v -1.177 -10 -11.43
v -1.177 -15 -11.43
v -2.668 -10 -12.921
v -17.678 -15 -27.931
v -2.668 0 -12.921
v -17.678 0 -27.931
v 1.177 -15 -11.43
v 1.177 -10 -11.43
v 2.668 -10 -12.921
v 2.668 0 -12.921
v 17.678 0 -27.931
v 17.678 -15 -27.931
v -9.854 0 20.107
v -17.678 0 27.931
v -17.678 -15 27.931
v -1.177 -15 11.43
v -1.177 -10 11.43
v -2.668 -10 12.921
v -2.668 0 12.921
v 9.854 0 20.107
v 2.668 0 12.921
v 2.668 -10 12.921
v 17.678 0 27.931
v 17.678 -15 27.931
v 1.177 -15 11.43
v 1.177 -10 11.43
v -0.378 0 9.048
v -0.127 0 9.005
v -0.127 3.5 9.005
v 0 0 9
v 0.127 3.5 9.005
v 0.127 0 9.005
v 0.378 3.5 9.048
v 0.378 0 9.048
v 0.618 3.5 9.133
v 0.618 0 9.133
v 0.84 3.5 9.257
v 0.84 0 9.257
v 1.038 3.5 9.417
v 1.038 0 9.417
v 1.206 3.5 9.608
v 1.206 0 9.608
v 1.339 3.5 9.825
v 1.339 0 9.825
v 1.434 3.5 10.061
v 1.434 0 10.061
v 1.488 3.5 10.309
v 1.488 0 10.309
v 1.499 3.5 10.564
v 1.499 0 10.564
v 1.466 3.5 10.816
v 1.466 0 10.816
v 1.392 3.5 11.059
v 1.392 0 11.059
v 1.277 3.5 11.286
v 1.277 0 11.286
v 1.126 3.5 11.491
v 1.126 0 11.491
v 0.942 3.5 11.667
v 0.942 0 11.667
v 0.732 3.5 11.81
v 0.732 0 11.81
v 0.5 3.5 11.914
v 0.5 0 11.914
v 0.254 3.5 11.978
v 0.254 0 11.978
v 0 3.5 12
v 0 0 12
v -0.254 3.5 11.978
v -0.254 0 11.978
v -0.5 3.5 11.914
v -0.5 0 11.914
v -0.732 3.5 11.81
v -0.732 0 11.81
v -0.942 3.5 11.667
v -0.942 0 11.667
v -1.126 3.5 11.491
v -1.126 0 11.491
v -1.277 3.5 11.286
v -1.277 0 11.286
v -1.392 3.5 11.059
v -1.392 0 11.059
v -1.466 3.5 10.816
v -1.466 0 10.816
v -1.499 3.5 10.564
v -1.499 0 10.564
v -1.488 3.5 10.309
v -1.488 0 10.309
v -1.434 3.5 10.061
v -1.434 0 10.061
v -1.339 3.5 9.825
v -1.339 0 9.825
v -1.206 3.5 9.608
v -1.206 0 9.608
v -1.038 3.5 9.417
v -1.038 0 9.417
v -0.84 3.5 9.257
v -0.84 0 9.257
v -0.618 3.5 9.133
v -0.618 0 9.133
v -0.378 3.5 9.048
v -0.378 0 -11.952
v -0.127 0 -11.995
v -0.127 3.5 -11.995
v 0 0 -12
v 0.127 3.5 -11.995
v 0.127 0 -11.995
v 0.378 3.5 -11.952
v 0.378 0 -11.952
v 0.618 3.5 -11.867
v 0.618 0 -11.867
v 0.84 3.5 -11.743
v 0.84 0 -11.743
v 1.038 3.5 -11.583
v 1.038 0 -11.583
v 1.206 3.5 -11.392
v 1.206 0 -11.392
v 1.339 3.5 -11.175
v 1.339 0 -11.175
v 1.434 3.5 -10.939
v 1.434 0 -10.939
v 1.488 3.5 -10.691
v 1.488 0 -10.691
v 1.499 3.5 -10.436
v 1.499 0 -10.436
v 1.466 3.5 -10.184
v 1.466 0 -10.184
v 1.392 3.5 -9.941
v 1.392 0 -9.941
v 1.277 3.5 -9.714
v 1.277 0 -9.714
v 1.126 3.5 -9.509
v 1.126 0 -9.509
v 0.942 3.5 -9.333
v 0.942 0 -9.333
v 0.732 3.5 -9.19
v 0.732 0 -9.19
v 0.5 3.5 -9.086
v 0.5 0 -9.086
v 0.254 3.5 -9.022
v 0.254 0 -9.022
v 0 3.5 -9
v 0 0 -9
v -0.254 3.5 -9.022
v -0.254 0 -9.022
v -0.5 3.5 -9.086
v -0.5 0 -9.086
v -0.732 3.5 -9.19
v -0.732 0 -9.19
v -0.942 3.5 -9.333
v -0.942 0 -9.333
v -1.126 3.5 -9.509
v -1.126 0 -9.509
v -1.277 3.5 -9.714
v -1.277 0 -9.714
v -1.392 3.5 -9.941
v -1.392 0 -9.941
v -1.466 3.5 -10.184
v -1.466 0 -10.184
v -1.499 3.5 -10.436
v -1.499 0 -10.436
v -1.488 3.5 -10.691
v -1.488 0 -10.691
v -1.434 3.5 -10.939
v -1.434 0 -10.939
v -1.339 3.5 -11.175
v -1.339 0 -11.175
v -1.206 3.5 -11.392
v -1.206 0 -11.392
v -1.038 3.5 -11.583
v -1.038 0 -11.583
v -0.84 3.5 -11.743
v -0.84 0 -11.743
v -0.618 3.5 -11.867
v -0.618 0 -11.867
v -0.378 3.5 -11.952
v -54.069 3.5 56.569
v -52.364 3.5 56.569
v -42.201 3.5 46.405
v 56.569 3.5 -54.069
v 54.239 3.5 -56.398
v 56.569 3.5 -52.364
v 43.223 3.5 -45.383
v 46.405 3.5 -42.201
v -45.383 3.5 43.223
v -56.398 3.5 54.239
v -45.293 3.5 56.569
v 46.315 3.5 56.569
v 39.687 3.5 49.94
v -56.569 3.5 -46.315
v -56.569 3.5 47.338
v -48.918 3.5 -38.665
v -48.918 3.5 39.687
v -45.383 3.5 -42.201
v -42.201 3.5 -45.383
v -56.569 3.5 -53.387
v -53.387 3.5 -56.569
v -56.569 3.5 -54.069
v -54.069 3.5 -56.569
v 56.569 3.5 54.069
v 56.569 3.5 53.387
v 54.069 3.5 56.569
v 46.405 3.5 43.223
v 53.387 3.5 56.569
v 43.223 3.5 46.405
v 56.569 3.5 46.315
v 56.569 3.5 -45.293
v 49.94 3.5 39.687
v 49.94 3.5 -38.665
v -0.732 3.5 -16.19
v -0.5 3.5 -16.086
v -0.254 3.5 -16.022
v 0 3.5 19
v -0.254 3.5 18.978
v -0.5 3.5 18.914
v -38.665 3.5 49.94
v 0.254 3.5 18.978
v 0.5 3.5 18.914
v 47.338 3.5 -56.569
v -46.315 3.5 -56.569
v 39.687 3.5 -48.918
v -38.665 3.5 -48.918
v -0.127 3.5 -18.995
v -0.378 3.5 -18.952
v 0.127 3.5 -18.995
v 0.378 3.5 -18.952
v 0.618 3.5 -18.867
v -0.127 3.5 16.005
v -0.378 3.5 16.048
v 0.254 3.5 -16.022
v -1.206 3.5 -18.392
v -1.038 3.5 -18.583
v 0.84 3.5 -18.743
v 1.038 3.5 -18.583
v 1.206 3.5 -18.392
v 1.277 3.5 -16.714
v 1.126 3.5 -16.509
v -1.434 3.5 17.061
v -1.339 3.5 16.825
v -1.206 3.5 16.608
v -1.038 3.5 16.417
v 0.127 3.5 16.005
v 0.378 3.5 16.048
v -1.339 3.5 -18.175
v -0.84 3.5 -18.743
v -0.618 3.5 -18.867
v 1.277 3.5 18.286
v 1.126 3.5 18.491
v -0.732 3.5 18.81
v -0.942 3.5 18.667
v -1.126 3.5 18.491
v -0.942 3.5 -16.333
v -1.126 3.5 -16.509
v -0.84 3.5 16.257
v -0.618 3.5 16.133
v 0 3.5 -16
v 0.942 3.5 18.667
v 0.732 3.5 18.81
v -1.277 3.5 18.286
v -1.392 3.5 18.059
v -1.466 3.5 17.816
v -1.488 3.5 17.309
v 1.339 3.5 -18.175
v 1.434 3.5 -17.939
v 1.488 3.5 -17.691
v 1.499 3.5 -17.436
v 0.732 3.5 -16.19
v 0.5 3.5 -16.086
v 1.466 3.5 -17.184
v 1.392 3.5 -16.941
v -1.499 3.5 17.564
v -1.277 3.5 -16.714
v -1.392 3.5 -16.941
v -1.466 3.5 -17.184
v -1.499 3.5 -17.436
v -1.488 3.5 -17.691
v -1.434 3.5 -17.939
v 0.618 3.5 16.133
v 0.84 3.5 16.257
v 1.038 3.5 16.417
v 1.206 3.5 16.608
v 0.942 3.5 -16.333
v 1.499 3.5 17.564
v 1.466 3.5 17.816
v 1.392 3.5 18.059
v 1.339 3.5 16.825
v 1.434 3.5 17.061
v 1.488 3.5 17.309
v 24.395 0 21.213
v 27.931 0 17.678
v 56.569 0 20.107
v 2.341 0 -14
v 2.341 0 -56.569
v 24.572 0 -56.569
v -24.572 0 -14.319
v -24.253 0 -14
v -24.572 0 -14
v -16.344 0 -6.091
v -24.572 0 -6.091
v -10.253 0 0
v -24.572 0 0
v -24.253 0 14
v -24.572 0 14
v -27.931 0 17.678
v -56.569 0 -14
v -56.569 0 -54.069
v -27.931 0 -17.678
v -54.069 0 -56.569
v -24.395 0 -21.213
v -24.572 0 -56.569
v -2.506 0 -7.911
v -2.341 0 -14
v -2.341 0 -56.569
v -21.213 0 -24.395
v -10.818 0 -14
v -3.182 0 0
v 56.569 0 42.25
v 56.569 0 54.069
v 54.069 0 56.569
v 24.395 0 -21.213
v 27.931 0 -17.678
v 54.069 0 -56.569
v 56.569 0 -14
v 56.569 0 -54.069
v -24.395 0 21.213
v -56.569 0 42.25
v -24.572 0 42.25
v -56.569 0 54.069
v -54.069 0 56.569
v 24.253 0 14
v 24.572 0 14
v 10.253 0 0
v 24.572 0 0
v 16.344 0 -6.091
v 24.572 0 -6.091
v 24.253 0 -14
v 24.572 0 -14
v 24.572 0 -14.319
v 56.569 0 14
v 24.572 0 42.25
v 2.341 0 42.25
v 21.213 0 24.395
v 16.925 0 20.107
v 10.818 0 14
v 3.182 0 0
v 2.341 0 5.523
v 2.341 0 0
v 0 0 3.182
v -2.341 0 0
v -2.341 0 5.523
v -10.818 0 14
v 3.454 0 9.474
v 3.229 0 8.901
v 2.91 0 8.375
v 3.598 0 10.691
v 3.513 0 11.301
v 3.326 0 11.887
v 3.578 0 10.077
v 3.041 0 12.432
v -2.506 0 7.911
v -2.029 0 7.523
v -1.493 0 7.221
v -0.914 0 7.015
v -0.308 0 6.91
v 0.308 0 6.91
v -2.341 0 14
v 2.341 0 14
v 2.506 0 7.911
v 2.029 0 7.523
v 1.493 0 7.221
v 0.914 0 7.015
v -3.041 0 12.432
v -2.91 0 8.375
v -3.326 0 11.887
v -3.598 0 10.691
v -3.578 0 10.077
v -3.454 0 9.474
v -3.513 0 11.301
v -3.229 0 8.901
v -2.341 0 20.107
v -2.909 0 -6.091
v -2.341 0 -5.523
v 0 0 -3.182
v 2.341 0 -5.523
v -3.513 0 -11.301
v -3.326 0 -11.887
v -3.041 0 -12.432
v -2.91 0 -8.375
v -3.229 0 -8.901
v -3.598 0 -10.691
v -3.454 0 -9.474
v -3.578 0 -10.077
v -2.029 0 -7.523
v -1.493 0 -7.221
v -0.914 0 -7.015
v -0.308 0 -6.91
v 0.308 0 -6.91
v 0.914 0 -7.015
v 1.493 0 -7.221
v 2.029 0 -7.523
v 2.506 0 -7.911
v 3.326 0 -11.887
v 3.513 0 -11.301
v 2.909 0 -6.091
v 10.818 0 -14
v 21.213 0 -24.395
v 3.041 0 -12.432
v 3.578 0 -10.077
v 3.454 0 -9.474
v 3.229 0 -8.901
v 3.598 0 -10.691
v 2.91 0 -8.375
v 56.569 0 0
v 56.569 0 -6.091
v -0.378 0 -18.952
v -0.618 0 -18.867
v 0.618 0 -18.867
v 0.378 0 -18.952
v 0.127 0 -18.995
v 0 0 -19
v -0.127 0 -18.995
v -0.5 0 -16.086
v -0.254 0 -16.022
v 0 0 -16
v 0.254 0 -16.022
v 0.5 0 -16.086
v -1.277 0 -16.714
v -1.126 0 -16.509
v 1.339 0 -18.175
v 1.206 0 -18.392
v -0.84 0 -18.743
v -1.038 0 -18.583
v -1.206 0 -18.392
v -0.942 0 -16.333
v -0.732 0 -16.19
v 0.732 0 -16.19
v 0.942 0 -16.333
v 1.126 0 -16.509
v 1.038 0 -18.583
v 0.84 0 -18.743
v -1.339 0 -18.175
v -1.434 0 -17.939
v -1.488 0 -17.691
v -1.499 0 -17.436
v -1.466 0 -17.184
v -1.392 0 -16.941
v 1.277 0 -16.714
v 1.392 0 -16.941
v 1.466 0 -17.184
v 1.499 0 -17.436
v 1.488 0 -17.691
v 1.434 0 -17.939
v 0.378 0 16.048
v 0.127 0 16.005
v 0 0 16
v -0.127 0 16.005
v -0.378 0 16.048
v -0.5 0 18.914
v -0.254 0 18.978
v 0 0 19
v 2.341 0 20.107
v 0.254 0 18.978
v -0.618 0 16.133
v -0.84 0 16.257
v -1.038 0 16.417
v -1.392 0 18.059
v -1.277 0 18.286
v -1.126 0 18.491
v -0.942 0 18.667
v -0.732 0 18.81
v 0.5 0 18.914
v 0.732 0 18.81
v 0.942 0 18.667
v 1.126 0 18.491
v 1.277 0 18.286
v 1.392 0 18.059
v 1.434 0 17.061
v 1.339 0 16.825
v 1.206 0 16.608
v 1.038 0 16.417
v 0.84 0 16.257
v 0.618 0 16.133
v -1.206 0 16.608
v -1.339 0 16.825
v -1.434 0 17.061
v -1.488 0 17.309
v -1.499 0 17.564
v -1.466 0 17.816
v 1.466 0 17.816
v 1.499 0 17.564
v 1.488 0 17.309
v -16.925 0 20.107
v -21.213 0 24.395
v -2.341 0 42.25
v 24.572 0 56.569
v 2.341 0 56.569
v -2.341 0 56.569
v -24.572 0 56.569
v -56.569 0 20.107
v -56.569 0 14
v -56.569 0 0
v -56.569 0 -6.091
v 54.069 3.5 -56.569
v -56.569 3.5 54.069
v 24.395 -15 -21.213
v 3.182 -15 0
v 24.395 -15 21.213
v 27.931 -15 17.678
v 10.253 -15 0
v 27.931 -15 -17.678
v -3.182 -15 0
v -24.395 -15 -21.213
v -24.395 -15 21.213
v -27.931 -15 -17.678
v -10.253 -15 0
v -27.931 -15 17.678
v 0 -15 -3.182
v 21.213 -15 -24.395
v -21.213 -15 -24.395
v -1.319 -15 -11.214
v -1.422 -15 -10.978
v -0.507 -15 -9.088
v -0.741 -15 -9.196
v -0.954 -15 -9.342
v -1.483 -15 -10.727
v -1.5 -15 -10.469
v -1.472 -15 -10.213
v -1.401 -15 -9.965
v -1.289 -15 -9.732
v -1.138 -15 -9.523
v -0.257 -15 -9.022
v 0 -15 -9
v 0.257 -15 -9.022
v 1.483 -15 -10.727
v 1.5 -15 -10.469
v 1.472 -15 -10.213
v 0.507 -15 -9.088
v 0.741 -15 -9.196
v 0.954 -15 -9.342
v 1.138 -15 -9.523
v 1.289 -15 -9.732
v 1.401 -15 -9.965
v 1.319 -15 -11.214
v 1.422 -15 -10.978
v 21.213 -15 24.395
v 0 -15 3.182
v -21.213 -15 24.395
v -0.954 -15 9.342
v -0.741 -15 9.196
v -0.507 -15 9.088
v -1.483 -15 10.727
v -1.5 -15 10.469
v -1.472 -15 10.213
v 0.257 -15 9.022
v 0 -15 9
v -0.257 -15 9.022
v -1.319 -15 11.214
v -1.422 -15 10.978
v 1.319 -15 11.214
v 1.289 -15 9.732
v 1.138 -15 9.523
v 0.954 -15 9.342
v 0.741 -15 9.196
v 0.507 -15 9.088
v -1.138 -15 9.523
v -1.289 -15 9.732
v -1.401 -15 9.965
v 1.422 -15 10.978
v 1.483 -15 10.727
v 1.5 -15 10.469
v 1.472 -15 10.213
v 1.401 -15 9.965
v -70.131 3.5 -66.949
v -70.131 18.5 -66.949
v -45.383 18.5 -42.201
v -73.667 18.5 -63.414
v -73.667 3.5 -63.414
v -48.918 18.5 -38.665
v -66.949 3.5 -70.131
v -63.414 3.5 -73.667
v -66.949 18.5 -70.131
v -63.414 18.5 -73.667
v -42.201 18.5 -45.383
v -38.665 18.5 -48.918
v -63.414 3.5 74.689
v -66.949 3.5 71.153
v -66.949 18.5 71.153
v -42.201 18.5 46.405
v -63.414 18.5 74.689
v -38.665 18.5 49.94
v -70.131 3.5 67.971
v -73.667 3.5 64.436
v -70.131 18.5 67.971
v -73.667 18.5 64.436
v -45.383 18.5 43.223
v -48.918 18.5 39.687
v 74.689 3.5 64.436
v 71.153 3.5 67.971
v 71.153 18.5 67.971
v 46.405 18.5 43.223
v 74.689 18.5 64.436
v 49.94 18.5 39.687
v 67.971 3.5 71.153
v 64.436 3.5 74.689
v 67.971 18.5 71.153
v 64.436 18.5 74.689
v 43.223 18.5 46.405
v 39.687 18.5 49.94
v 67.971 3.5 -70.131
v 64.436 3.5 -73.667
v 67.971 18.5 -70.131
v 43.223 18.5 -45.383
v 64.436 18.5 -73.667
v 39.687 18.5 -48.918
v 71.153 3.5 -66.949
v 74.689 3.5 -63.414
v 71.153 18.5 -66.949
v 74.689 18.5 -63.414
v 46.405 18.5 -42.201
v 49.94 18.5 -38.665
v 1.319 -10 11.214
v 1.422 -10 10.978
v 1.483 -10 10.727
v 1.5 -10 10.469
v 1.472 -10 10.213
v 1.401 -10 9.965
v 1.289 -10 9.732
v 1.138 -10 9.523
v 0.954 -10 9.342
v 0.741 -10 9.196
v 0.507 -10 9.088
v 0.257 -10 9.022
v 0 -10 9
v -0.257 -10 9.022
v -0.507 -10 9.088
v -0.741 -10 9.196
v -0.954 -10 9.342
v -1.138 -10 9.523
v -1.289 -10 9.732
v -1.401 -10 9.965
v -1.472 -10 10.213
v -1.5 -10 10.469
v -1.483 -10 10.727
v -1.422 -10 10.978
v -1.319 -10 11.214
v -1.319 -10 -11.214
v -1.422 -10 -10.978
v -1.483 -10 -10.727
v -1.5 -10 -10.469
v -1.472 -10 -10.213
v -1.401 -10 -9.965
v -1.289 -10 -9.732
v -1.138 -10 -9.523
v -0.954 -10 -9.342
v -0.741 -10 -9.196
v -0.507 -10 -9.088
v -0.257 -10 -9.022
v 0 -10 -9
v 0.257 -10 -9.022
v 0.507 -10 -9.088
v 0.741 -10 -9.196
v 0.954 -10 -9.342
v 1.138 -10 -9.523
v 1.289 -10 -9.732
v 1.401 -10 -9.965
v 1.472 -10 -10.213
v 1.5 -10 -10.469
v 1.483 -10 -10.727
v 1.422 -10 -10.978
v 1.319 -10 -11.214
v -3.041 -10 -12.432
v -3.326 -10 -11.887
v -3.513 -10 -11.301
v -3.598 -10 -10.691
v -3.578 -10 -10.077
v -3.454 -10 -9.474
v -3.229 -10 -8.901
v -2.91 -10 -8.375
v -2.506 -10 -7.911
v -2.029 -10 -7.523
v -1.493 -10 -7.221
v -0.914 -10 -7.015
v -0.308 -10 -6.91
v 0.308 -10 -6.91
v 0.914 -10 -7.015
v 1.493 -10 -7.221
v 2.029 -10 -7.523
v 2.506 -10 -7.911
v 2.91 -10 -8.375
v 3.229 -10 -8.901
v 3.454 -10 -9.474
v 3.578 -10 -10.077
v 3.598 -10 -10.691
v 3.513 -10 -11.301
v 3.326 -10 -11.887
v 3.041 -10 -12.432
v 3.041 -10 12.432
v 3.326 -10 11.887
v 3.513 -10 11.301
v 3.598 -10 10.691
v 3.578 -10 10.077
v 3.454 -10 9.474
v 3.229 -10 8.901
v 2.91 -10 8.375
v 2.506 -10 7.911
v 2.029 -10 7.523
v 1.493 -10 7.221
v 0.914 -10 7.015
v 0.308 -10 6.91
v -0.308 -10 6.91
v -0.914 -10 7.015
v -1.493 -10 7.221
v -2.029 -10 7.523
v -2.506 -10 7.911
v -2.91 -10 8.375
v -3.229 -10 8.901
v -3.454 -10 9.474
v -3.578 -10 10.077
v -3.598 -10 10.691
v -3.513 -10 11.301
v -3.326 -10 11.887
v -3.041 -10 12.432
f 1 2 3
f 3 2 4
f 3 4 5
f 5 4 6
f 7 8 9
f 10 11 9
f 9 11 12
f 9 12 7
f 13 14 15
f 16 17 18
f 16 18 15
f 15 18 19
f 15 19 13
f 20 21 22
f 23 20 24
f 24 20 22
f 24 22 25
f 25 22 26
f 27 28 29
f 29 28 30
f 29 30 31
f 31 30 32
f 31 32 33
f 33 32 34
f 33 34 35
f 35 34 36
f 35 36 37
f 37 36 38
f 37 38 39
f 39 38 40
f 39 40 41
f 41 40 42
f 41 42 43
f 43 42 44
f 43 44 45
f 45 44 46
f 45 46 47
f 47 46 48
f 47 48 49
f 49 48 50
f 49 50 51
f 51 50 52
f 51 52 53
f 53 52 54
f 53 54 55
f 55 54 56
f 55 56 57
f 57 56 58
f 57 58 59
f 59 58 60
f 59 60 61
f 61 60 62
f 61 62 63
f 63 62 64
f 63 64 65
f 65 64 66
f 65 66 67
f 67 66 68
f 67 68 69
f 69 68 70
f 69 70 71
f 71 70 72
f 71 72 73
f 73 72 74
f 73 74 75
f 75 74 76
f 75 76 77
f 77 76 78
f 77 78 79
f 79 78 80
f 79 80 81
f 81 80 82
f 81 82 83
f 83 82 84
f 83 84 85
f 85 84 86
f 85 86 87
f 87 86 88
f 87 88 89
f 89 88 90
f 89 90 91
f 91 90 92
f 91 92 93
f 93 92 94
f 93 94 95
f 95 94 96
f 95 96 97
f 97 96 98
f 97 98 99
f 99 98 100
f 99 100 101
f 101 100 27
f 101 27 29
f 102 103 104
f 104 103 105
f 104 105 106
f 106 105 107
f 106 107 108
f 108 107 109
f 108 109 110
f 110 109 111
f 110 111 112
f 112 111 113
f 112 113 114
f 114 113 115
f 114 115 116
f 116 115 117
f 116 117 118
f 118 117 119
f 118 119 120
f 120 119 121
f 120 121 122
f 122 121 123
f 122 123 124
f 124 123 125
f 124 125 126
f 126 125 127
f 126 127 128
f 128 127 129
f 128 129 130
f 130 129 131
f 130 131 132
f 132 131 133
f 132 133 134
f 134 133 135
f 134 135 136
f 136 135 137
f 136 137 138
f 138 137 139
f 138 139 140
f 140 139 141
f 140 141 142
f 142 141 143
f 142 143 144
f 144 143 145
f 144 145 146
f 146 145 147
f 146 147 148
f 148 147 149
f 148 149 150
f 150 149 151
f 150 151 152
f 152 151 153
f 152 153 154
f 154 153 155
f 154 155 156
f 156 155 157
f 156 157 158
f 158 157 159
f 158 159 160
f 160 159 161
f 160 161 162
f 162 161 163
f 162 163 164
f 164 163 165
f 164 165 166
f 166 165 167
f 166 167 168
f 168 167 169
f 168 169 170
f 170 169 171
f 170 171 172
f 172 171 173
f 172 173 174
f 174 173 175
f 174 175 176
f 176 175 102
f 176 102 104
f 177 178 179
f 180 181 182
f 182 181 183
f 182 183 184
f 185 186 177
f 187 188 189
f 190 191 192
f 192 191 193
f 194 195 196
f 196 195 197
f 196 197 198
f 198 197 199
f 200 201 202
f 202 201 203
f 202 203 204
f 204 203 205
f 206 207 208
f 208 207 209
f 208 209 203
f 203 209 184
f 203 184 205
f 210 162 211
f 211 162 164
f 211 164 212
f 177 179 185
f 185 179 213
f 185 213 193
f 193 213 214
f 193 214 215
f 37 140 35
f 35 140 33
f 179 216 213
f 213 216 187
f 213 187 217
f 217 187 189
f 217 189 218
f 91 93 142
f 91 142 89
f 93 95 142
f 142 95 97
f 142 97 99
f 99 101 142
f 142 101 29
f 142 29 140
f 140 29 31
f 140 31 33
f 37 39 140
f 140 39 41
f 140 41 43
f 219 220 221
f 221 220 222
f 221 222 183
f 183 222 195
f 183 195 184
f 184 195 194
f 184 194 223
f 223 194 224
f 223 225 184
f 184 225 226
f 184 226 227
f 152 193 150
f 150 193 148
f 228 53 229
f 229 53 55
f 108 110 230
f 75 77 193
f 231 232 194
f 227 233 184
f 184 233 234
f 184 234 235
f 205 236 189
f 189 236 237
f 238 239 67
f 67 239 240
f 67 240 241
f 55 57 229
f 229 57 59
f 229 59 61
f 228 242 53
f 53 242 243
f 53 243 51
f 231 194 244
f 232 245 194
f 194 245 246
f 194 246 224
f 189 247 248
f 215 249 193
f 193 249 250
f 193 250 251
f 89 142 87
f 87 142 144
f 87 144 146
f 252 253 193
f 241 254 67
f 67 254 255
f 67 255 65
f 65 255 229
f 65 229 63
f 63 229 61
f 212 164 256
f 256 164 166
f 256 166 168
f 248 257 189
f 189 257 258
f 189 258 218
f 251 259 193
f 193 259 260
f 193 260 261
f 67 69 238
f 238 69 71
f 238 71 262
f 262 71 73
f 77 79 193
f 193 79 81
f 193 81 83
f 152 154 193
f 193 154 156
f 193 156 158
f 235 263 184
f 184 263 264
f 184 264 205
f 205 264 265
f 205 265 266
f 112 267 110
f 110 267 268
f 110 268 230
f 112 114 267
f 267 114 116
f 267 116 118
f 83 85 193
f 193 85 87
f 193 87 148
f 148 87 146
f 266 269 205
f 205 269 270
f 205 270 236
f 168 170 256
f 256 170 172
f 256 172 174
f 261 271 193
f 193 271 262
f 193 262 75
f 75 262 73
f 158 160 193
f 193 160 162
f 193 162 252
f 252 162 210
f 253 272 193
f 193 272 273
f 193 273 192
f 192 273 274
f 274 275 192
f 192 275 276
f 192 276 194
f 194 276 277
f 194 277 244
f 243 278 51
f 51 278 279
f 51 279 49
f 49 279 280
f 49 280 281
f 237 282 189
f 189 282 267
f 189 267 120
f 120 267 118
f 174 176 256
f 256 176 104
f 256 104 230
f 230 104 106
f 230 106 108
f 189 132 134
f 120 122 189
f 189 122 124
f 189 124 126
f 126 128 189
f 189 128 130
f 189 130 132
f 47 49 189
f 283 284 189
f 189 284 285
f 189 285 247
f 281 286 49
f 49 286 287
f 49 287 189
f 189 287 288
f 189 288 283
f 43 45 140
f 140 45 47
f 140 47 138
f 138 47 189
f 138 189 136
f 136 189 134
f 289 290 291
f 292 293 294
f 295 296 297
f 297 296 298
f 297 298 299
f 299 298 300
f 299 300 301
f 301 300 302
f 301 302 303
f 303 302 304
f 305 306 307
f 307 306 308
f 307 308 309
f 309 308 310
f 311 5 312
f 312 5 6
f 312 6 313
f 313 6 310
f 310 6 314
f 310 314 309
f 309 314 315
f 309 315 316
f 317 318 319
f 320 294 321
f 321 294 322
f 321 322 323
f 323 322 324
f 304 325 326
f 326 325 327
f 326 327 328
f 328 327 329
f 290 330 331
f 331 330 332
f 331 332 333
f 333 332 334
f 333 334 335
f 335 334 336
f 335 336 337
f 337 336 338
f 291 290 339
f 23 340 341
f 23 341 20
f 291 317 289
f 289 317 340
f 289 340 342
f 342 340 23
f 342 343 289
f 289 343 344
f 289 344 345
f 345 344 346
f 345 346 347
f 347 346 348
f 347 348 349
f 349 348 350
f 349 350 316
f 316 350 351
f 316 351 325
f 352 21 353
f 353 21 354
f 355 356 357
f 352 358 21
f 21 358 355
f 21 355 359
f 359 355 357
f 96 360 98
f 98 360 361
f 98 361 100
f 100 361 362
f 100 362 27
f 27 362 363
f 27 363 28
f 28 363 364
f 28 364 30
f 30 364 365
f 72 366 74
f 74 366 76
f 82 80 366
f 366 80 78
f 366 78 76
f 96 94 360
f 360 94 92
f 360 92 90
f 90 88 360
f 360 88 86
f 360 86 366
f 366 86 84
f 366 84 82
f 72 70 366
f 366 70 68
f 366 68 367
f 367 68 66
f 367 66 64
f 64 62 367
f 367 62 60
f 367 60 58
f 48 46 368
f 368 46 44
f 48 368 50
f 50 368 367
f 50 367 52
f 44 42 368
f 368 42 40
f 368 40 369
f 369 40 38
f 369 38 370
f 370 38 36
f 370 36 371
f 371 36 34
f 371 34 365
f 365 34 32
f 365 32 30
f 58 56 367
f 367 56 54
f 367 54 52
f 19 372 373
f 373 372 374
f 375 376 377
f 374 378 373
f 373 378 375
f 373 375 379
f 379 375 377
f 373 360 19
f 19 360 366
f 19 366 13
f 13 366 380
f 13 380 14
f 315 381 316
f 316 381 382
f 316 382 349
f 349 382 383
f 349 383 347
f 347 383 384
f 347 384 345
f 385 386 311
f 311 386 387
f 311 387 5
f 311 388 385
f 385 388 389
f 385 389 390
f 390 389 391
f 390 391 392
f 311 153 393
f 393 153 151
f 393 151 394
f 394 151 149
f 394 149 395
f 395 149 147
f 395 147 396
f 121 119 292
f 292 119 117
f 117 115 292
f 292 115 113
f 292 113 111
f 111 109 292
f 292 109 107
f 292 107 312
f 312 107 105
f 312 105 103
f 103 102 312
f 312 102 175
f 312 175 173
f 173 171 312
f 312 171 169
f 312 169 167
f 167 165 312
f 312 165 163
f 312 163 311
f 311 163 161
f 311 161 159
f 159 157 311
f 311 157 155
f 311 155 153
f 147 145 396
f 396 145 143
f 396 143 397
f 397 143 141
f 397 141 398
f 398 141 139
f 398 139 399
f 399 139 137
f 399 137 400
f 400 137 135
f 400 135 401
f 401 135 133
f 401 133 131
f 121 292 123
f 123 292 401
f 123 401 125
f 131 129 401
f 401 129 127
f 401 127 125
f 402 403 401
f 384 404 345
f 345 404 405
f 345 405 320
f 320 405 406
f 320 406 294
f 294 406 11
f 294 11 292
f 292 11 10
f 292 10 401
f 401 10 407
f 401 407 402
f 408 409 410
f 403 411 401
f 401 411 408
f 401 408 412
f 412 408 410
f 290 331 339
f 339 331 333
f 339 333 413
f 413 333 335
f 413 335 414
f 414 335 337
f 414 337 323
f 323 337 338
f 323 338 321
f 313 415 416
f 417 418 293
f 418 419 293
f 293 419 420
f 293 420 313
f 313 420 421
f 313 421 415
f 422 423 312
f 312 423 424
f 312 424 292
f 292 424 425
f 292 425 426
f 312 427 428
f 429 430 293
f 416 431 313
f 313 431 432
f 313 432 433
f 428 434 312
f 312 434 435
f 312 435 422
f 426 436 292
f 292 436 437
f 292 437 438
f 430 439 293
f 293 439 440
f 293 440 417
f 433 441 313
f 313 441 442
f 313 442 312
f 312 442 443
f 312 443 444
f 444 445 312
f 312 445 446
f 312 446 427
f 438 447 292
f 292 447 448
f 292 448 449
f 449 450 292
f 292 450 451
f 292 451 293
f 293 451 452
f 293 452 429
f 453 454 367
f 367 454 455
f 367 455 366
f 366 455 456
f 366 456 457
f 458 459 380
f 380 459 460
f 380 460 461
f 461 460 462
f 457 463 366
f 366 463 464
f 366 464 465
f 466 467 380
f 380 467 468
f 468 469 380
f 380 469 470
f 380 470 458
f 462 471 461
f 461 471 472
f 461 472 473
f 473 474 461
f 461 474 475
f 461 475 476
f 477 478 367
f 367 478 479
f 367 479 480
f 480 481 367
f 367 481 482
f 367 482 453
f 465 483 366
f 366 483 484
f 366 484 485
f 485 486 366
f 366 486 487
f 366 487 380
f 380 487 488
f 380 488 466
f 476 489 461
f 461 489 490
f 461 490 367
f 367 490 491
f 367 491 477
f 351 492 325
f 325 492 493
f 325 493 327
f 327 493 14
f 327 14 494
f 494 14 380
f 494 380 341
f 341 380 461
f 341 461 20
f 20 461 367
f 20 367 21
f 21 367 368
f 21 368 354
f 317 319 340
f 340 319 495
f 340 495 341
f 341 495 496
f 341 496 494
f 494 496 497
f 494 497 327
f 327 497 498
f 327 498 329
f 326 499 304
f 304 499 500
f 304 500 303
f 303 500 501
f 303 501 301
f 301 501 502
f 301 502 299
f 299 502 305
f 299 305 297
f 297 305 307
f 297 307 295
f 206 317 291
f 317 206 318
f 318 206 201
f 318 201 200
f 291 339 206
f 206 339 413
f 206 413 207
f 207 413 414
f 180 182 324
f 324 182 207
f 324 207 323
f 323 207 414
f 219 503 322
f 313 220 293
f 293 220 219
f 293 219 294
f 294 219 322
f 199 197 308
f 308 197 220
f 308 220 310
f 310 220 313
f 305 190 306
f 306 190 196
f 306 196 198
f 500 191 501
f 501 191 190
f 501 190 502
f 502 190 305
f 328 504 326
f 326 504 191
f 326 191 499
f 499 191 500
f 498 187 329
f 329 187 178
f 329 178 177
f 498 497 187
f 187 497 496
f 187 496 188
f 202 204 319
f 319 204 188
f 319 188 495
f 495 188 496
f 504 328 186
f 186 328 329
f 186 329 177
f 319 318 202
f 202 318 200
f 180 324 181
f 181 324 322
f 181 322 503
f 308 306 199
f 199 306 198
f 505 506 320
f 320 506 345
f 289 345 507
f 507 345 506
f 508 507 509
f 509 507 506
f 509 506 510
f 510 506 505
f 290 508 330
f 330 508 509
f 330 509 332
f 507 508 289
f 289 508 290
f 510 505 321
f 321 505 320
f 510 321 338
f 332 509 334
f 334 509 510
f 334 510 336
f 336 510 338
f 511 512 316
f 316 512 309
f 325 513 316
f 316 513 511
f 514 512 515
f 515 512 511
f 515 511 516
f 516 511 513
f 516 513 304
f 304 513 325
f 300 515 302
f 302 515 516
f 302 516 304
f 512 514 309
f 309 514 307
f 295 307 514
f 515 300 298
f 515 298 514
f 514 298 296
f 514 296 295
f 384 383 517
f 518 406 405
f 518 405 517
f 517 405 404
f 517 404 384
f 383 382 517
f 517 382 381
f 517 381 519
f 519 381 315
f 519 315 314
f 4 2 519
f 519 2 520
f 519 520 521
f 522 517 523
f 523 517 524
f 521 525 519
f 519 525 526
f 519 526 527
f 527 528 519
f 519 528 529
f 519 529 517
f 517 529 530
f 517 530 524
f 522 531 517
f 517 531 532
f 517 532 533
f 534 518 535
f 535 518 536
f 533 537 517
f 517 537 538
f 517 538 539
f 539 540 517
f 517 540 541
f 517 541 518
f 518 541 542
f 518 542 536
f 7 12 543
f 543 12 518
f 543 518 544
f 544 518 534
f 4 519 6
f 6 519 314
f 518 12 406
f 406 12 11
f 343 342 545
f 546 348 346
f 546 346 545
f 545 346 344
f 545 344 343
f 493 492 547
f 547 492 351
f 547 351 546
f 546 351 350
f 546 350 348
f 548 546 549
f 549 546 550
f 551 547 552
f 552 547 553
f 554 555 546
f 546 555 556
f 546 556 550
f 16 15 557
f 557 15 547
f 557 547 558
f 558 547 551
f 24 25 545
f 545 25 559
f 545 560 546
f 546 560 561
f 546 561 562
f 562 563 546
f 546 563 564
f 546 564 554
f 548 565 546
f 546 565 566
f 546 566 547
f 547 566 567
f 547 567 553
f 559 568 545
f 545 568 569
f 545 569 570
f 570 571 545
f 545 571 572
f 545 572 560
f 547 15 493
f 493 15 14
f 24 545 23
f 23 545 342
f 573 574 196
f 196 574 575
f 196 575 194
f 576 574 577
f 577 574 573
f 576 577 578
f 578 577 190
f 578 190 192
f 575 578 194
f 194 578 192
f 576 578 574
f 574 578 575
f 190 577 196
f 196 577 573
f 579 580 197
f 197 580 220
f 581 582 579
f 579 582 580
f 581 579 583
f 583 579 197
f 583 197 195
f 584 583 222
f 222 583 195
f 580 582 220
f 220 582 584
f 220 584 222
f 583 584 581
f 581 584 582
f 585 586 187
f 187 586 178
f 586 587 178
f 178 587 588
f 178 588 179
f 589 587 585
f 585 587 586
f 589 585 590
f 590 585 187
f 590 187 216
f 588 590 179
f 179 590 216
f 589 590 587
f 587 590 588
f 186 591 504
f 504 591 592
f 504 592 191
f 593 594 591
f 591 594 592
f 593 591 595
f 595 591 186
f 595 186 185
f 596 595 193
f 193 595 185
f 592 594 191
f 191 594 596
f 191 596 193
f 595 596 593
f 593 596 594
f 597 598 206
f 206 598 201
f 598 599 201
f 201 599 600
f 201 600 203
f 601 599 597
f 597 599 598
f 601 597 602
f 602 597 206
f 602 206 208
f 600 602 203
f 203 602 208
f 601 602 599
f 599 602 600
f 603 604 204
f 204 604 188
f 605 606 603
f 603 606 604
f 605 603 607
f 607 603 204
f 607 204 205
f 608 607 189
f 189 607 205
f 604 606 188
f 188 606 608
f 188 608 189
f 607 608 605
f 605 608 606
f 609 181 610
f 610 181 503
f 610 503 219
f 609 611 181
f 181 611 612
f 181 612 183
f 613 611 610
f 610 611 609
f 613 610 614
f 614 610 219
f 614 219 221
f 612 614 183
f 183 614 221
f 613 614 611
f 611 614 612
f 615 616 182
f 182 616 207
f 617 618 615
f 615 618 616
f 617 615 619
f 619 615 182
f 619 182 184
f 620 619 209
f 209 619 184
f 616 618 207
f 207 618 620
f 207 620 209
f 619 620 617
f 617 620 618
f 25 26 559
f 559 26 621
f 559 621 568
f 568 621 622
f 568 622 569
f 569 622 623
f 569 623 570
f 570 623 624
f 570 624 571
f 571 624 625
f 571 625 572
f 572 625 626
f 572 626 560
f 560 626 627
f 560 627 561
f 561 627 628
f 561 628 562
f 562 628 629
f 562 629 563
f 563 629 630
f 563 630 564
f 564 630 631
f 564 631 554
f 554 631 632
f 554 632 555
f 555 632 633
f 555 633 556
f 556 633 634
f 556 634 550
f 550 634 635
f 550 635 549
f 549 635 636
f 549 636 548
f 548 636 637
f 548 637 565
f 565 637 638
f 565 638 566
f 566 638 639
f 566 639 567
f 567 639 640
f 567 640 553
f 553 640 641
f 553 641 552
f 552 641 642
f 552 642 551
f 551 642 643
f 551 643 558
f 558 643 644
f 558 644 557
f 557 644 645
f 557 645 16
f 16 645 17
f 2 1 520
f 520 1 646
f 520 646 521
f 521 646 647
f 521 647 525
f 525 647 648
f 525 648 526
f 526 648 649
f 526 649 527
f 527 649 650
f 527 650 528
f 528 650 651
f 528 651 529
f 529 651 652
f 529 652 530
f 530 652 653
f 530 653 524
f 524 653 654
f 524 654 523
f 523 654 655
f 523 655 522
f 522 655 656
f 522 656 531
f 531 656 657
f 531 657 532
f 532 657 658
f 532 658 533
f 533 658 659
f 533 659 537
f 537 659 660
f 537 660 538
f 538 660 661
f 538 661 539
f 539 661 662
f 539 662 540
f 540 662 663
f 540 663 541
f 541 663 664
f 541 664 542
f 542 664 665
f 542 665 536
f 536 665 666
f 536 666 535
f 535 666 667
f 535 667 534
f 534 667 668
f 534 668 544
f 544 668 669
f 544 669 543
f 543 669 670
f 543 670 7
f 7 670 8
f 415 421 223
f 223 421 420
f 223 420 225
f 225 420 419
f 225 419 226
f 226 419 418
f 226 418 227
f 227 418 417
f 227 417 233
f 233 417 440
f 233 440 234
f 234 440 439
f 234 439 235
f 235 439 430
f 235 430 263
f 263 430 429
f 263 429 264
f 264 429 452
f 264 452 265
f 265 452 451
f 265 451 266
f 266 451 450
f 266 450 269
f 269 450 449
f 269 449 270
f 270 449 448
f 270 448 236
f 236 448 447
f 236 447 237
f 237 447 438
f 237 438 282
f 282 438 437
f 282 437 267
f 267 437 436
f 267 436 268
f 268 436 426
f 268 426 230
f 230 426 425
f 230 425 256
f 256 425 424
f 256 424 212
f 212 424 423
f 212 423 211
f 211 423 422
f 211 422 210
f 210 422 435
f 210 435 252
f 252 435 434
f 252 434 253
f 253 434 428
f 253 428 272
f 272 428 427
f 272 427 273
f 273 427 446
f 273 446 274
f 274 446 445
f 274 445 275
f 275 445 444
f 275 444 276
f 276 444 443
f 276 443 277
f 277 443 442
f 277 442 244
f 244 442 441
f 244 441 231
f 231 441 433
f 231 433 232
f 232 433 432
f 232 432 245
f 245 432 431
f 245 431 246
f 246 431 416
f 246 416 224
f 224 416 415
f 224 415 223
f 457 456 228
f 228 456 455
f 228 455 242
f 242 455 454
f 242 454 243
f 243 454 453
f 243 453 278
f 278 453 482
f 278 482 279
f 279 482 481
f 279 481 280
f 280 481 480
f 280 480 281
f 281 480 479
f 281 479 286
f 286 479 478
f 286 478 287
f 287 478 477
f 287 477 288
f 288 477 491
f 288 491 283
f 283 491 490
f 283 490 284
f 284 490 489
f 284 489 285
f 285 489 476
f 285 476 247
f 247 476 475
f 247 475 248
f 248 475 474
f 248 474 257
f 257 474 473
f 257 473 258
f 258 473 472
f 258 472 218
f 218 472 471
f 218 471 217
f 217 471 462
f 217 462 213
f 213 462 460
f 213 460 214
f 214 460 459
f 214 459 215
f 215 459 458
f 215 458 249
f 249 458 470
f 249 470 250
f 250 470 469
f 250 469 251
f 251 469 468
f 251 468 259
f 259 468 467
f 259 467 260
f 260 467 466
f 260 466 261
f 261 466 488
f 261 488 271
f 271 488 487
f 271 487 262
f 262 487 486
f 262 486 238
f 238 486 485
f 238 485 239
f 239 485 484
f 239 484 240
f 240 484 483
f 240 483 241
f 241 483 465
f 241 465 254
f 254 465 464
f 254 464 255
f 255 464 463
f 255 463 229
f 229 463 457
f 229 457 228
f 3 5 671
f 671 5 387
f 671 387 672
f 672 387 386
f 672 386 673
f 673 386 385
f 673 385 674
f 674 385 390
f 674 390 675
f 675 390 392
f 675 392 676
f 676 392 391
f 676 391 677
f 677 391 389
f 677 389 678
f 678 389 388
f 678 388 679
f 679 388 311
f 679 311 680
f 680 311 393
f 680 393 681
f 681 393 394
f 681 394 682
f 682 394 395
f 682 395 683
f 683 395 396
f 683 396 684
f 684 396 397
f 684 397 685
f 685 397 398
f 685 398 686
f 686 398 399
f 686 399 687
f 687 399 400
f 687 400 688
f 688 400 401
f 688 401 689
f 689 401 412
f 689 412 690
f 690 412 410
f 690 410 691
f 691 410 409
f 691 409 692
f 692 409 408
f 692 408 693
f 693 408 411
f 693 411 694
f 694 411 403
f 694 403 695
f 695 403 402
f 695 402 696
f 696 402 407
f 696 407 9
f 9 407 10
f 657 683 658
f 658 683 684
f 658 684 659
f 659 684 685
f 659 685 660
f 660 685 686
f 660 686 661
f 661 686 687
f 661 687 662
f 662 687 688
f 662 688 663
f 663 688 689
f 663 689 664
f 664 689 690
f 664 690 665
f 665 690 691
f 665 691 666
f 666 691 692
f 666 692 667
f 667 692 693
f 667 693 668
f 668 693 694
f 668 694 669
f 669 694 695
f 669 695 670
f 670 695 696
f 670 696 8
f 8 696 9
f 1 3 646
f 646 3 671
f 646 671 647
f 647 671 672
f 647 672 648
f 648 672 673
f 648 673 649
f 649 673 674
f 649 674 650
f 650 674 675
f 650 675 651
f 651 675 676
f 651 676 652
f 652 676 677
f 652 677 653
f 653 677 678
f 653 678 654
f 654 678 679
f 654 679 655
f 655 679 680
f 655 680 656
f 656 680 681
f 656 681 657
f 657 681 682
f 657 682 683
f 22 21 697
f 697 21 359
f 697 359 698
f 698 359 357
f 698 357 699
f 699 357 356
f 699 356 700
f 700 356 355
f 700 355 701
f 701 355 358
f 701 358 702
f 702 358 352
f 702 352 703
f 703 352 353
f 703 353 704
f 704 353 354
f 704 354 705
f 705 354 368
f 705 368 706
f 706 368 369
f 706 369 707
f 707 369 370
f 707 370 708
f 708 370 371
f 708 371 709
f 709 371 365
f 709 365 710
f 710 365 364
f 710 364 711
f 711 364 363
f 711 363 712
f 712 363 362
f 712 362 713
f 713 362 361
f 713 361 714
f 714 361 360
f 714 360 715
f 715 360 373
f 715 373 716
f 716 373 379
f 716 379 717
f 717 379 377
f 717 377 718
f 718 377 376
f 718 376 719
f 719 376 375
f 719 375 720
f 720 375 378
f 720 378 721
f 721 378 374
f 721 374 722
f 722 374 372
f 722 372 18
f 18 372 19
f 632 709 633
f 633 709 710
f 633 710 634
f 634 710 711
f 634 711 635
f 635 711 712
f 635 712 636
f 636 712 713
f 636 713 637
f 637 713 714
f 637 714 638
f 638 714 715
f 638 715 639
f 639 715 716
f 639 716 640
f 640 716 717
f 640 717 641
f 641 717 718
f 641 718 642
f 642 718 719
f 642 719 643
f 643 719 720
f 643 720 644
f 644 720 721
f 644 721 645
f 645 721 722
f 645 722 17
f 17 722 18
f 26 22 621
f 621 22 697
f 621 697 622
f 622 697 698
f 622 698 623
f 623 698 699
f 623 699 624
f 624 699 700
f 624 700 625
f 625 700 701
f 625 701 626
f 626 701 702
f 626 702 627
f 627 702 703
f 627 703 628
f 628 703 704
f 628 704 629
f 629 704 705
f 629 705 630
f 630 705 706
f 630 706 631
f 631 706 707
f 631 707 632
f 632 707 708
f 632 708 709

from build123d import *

# Parameters (mm, degrees)
SKETCH2_W           = 113.13708499
SKETCH2_H           = 113.13708499
BOSS_EXTRUDE1_DEPTH = 3.5
CHAMFER1_SIZE       = 2.5
BOSS_EXTRUDE3_DEPTH = 15
BOSS_EXTRUDE5_DEPTH = 15
CIRPATTERN11_COUNT  = 4
CUT_EXTRUDE3_START  = -18.5
SKETCH8_R           = 1.5
CUT_EXTRUDE3_DEPTH  = 18.5
SKETCH9_R           = 3.603183746
CUT_EXTRUDE4_DEPTH  = 10


with BuildPart() as part:
    # Sketch2 → Boss-Extrude1 (new body)
    with BuildSketch(Plane(origin=(0, 0, 0), x_dir=(1, 0, 0), z_dir=(0, 1, 0))):
        Rectangle(SKETCH2_W, SKETCH2_H)
    extrude(amount=BOSS_EXTRUDE1_DEPTH)

    # Chamfer1
    chamfer1_edges = [part.edges().sort_by_distance(p)[0] for p in [
        (56.568542495, 1.75, 56.568542495),
        (-56.568542495, 1.75, 56.568542495),
        (-56.568542495, 1.75, -56.568542495),
        (56.568542495, 1.75, -56.568542495),
    ]]
    chamfer(chamfer1_edges, length=CHAMFER1_SIZE)

    # Sketch3 → Boss-Extrude3 (add)
    with BuildSketch(Plane.XZ):
        Polygon((0, 10.253048327), (-3.535533906, 6.717514421), (0, 3.181980515), (3.535533906, 6.717514421), align=None)
        Polygon((-21.213203436, 24.395183951), (-3.535533906, 6.717514421), (0, 10.253048327), (-17.67766953, 27.930717857), align=None)
        Polygon((17.67766953, 27.930717857), (0, 10.253048327), (3.535533906, 6.717514421), (21.213203436, 24.395183951), align=None)
        Polygon((6.717514421, 3.535533906), (3.181980515, 0), (6.717514421, -3.535533906), (10.253048327, 0), align=None)
        Polygon((24.395183951, 21.213203436), (6.717514421, 3.535533906), (10.253048327, 0), (27.930717857, 17.67766953), align=None)
        Polygon((10.253048327, 0), (6.717514421, -3.535533906), (24.395183951, -21.213203436), (27.930717857, -17.67766953), align=None)
        Polygon((3.535533906, -6.717514421), (0, -3.181980515), (-3.535533906, -6.717514421), (0, -10.253048327), align=None)
        Polygon((21.213203436, -24.395183951), (3.535533906, -6.717514421), (0, -10.253048327), (17.67766953, -27.930717857), align=None)
        Polygon((0, -10.253048327), (-3.535533906, -6.717514421), (-21.213203436, -24.395183951), (-17.67766953, -27.930717857), align=None)
        Polygon((-6.717514421, -3.535533906), (-3.181980515, 0), (-6.717514421, 3.535533906), (-10.253048327, 0), align=None)
        Polygon((-24.395183951, -21.213203436), (-6.717514421, -3.535533906), (-10.253048327, 0), (-27.930717857, -17.67766953), align=None)
        Polygon((-10.253048327, 0), (-6.717514421, 3.535533906), (-24.395183951, 21.213203436), (-27.930717857, 17.67766953), align=None)
    extrude(amount=BOSS_EXTRUDE3_DEPTH)

    # Sketch6 → Boss-Extrude5 (add)
    with BuildSketch(Plane(origin=(0, 3.5, 0), x_dir=(1, 0, 0), z_dir=(0, 1, 0))):
        Polygon((-66.949331771, 70.131312286), (-42.20059443, 45.382574945), (-38.665060524, 48.918108851), (-63.413797865, 73.666846192), align=None)
        Polygon((-45.382574945, 42.20059443), (-48.918108851, 38.665060524), (-73.666846192, 63.413797865), (-70.131312286, 66.949331771), align=None)
    boss_extrude5 = extrude(amount=BOSS_EXTRUDE5_DEPTH)

    # CirPattern11: Boss-Extrude5 ×4 about axis
    cirpattern11_axis = Axis((0.511078202, 0, 0.511078202), (0, 1, 0))
    for i in range(1, CIRPATTERN11_COUNT):
        add(boss_extrude5.rotate(cirpattern11_axis, i * 360 / CIRPATTERN11_COUNT))

    # Sketch8 → Cut-Extrude3 (cut)
    with BuildSketch(Plane(origin=(0, 3.5, 0), x_dir=(1, 0, 0), z_dir=(0, 1, 0)).offset(CUT_EXTRUDE3_START)):
        with Locations(Location((0, 10.5, 0), (0, 0, 270))):
            Circle(SKETCH8_R)
        with Locations(Location((0, -10.5, 0), (0, 0, 270))):
            Circle(SKETCH8_R)
        with Locations(Location((0, 17.5, 0), (0, 0, 270))):
            Circle(SKETCH8_R)
        with Locations(Location((0, -17.5, 0), (0, 0, 270))):
            Circle(SKETCH8_R)
    extrude(amount=CUT_EXTRUDE3_DEPTH, mode=Mode.SUBTRACT)

    # Sketch9 → Cut-Extrude4 (cut)
    with BuildSketch(Plane.XZ):
        with Locations((0, 10.5)):
            Circle(SKETCH9_R)
        with Locations((0, -10.5)):
            Circle(SKETCH9_R)
    extrude(amount=CUT_EXTRUDE4_DEPTH, mode=Mode.SUBTRACT)


solid = part.part
